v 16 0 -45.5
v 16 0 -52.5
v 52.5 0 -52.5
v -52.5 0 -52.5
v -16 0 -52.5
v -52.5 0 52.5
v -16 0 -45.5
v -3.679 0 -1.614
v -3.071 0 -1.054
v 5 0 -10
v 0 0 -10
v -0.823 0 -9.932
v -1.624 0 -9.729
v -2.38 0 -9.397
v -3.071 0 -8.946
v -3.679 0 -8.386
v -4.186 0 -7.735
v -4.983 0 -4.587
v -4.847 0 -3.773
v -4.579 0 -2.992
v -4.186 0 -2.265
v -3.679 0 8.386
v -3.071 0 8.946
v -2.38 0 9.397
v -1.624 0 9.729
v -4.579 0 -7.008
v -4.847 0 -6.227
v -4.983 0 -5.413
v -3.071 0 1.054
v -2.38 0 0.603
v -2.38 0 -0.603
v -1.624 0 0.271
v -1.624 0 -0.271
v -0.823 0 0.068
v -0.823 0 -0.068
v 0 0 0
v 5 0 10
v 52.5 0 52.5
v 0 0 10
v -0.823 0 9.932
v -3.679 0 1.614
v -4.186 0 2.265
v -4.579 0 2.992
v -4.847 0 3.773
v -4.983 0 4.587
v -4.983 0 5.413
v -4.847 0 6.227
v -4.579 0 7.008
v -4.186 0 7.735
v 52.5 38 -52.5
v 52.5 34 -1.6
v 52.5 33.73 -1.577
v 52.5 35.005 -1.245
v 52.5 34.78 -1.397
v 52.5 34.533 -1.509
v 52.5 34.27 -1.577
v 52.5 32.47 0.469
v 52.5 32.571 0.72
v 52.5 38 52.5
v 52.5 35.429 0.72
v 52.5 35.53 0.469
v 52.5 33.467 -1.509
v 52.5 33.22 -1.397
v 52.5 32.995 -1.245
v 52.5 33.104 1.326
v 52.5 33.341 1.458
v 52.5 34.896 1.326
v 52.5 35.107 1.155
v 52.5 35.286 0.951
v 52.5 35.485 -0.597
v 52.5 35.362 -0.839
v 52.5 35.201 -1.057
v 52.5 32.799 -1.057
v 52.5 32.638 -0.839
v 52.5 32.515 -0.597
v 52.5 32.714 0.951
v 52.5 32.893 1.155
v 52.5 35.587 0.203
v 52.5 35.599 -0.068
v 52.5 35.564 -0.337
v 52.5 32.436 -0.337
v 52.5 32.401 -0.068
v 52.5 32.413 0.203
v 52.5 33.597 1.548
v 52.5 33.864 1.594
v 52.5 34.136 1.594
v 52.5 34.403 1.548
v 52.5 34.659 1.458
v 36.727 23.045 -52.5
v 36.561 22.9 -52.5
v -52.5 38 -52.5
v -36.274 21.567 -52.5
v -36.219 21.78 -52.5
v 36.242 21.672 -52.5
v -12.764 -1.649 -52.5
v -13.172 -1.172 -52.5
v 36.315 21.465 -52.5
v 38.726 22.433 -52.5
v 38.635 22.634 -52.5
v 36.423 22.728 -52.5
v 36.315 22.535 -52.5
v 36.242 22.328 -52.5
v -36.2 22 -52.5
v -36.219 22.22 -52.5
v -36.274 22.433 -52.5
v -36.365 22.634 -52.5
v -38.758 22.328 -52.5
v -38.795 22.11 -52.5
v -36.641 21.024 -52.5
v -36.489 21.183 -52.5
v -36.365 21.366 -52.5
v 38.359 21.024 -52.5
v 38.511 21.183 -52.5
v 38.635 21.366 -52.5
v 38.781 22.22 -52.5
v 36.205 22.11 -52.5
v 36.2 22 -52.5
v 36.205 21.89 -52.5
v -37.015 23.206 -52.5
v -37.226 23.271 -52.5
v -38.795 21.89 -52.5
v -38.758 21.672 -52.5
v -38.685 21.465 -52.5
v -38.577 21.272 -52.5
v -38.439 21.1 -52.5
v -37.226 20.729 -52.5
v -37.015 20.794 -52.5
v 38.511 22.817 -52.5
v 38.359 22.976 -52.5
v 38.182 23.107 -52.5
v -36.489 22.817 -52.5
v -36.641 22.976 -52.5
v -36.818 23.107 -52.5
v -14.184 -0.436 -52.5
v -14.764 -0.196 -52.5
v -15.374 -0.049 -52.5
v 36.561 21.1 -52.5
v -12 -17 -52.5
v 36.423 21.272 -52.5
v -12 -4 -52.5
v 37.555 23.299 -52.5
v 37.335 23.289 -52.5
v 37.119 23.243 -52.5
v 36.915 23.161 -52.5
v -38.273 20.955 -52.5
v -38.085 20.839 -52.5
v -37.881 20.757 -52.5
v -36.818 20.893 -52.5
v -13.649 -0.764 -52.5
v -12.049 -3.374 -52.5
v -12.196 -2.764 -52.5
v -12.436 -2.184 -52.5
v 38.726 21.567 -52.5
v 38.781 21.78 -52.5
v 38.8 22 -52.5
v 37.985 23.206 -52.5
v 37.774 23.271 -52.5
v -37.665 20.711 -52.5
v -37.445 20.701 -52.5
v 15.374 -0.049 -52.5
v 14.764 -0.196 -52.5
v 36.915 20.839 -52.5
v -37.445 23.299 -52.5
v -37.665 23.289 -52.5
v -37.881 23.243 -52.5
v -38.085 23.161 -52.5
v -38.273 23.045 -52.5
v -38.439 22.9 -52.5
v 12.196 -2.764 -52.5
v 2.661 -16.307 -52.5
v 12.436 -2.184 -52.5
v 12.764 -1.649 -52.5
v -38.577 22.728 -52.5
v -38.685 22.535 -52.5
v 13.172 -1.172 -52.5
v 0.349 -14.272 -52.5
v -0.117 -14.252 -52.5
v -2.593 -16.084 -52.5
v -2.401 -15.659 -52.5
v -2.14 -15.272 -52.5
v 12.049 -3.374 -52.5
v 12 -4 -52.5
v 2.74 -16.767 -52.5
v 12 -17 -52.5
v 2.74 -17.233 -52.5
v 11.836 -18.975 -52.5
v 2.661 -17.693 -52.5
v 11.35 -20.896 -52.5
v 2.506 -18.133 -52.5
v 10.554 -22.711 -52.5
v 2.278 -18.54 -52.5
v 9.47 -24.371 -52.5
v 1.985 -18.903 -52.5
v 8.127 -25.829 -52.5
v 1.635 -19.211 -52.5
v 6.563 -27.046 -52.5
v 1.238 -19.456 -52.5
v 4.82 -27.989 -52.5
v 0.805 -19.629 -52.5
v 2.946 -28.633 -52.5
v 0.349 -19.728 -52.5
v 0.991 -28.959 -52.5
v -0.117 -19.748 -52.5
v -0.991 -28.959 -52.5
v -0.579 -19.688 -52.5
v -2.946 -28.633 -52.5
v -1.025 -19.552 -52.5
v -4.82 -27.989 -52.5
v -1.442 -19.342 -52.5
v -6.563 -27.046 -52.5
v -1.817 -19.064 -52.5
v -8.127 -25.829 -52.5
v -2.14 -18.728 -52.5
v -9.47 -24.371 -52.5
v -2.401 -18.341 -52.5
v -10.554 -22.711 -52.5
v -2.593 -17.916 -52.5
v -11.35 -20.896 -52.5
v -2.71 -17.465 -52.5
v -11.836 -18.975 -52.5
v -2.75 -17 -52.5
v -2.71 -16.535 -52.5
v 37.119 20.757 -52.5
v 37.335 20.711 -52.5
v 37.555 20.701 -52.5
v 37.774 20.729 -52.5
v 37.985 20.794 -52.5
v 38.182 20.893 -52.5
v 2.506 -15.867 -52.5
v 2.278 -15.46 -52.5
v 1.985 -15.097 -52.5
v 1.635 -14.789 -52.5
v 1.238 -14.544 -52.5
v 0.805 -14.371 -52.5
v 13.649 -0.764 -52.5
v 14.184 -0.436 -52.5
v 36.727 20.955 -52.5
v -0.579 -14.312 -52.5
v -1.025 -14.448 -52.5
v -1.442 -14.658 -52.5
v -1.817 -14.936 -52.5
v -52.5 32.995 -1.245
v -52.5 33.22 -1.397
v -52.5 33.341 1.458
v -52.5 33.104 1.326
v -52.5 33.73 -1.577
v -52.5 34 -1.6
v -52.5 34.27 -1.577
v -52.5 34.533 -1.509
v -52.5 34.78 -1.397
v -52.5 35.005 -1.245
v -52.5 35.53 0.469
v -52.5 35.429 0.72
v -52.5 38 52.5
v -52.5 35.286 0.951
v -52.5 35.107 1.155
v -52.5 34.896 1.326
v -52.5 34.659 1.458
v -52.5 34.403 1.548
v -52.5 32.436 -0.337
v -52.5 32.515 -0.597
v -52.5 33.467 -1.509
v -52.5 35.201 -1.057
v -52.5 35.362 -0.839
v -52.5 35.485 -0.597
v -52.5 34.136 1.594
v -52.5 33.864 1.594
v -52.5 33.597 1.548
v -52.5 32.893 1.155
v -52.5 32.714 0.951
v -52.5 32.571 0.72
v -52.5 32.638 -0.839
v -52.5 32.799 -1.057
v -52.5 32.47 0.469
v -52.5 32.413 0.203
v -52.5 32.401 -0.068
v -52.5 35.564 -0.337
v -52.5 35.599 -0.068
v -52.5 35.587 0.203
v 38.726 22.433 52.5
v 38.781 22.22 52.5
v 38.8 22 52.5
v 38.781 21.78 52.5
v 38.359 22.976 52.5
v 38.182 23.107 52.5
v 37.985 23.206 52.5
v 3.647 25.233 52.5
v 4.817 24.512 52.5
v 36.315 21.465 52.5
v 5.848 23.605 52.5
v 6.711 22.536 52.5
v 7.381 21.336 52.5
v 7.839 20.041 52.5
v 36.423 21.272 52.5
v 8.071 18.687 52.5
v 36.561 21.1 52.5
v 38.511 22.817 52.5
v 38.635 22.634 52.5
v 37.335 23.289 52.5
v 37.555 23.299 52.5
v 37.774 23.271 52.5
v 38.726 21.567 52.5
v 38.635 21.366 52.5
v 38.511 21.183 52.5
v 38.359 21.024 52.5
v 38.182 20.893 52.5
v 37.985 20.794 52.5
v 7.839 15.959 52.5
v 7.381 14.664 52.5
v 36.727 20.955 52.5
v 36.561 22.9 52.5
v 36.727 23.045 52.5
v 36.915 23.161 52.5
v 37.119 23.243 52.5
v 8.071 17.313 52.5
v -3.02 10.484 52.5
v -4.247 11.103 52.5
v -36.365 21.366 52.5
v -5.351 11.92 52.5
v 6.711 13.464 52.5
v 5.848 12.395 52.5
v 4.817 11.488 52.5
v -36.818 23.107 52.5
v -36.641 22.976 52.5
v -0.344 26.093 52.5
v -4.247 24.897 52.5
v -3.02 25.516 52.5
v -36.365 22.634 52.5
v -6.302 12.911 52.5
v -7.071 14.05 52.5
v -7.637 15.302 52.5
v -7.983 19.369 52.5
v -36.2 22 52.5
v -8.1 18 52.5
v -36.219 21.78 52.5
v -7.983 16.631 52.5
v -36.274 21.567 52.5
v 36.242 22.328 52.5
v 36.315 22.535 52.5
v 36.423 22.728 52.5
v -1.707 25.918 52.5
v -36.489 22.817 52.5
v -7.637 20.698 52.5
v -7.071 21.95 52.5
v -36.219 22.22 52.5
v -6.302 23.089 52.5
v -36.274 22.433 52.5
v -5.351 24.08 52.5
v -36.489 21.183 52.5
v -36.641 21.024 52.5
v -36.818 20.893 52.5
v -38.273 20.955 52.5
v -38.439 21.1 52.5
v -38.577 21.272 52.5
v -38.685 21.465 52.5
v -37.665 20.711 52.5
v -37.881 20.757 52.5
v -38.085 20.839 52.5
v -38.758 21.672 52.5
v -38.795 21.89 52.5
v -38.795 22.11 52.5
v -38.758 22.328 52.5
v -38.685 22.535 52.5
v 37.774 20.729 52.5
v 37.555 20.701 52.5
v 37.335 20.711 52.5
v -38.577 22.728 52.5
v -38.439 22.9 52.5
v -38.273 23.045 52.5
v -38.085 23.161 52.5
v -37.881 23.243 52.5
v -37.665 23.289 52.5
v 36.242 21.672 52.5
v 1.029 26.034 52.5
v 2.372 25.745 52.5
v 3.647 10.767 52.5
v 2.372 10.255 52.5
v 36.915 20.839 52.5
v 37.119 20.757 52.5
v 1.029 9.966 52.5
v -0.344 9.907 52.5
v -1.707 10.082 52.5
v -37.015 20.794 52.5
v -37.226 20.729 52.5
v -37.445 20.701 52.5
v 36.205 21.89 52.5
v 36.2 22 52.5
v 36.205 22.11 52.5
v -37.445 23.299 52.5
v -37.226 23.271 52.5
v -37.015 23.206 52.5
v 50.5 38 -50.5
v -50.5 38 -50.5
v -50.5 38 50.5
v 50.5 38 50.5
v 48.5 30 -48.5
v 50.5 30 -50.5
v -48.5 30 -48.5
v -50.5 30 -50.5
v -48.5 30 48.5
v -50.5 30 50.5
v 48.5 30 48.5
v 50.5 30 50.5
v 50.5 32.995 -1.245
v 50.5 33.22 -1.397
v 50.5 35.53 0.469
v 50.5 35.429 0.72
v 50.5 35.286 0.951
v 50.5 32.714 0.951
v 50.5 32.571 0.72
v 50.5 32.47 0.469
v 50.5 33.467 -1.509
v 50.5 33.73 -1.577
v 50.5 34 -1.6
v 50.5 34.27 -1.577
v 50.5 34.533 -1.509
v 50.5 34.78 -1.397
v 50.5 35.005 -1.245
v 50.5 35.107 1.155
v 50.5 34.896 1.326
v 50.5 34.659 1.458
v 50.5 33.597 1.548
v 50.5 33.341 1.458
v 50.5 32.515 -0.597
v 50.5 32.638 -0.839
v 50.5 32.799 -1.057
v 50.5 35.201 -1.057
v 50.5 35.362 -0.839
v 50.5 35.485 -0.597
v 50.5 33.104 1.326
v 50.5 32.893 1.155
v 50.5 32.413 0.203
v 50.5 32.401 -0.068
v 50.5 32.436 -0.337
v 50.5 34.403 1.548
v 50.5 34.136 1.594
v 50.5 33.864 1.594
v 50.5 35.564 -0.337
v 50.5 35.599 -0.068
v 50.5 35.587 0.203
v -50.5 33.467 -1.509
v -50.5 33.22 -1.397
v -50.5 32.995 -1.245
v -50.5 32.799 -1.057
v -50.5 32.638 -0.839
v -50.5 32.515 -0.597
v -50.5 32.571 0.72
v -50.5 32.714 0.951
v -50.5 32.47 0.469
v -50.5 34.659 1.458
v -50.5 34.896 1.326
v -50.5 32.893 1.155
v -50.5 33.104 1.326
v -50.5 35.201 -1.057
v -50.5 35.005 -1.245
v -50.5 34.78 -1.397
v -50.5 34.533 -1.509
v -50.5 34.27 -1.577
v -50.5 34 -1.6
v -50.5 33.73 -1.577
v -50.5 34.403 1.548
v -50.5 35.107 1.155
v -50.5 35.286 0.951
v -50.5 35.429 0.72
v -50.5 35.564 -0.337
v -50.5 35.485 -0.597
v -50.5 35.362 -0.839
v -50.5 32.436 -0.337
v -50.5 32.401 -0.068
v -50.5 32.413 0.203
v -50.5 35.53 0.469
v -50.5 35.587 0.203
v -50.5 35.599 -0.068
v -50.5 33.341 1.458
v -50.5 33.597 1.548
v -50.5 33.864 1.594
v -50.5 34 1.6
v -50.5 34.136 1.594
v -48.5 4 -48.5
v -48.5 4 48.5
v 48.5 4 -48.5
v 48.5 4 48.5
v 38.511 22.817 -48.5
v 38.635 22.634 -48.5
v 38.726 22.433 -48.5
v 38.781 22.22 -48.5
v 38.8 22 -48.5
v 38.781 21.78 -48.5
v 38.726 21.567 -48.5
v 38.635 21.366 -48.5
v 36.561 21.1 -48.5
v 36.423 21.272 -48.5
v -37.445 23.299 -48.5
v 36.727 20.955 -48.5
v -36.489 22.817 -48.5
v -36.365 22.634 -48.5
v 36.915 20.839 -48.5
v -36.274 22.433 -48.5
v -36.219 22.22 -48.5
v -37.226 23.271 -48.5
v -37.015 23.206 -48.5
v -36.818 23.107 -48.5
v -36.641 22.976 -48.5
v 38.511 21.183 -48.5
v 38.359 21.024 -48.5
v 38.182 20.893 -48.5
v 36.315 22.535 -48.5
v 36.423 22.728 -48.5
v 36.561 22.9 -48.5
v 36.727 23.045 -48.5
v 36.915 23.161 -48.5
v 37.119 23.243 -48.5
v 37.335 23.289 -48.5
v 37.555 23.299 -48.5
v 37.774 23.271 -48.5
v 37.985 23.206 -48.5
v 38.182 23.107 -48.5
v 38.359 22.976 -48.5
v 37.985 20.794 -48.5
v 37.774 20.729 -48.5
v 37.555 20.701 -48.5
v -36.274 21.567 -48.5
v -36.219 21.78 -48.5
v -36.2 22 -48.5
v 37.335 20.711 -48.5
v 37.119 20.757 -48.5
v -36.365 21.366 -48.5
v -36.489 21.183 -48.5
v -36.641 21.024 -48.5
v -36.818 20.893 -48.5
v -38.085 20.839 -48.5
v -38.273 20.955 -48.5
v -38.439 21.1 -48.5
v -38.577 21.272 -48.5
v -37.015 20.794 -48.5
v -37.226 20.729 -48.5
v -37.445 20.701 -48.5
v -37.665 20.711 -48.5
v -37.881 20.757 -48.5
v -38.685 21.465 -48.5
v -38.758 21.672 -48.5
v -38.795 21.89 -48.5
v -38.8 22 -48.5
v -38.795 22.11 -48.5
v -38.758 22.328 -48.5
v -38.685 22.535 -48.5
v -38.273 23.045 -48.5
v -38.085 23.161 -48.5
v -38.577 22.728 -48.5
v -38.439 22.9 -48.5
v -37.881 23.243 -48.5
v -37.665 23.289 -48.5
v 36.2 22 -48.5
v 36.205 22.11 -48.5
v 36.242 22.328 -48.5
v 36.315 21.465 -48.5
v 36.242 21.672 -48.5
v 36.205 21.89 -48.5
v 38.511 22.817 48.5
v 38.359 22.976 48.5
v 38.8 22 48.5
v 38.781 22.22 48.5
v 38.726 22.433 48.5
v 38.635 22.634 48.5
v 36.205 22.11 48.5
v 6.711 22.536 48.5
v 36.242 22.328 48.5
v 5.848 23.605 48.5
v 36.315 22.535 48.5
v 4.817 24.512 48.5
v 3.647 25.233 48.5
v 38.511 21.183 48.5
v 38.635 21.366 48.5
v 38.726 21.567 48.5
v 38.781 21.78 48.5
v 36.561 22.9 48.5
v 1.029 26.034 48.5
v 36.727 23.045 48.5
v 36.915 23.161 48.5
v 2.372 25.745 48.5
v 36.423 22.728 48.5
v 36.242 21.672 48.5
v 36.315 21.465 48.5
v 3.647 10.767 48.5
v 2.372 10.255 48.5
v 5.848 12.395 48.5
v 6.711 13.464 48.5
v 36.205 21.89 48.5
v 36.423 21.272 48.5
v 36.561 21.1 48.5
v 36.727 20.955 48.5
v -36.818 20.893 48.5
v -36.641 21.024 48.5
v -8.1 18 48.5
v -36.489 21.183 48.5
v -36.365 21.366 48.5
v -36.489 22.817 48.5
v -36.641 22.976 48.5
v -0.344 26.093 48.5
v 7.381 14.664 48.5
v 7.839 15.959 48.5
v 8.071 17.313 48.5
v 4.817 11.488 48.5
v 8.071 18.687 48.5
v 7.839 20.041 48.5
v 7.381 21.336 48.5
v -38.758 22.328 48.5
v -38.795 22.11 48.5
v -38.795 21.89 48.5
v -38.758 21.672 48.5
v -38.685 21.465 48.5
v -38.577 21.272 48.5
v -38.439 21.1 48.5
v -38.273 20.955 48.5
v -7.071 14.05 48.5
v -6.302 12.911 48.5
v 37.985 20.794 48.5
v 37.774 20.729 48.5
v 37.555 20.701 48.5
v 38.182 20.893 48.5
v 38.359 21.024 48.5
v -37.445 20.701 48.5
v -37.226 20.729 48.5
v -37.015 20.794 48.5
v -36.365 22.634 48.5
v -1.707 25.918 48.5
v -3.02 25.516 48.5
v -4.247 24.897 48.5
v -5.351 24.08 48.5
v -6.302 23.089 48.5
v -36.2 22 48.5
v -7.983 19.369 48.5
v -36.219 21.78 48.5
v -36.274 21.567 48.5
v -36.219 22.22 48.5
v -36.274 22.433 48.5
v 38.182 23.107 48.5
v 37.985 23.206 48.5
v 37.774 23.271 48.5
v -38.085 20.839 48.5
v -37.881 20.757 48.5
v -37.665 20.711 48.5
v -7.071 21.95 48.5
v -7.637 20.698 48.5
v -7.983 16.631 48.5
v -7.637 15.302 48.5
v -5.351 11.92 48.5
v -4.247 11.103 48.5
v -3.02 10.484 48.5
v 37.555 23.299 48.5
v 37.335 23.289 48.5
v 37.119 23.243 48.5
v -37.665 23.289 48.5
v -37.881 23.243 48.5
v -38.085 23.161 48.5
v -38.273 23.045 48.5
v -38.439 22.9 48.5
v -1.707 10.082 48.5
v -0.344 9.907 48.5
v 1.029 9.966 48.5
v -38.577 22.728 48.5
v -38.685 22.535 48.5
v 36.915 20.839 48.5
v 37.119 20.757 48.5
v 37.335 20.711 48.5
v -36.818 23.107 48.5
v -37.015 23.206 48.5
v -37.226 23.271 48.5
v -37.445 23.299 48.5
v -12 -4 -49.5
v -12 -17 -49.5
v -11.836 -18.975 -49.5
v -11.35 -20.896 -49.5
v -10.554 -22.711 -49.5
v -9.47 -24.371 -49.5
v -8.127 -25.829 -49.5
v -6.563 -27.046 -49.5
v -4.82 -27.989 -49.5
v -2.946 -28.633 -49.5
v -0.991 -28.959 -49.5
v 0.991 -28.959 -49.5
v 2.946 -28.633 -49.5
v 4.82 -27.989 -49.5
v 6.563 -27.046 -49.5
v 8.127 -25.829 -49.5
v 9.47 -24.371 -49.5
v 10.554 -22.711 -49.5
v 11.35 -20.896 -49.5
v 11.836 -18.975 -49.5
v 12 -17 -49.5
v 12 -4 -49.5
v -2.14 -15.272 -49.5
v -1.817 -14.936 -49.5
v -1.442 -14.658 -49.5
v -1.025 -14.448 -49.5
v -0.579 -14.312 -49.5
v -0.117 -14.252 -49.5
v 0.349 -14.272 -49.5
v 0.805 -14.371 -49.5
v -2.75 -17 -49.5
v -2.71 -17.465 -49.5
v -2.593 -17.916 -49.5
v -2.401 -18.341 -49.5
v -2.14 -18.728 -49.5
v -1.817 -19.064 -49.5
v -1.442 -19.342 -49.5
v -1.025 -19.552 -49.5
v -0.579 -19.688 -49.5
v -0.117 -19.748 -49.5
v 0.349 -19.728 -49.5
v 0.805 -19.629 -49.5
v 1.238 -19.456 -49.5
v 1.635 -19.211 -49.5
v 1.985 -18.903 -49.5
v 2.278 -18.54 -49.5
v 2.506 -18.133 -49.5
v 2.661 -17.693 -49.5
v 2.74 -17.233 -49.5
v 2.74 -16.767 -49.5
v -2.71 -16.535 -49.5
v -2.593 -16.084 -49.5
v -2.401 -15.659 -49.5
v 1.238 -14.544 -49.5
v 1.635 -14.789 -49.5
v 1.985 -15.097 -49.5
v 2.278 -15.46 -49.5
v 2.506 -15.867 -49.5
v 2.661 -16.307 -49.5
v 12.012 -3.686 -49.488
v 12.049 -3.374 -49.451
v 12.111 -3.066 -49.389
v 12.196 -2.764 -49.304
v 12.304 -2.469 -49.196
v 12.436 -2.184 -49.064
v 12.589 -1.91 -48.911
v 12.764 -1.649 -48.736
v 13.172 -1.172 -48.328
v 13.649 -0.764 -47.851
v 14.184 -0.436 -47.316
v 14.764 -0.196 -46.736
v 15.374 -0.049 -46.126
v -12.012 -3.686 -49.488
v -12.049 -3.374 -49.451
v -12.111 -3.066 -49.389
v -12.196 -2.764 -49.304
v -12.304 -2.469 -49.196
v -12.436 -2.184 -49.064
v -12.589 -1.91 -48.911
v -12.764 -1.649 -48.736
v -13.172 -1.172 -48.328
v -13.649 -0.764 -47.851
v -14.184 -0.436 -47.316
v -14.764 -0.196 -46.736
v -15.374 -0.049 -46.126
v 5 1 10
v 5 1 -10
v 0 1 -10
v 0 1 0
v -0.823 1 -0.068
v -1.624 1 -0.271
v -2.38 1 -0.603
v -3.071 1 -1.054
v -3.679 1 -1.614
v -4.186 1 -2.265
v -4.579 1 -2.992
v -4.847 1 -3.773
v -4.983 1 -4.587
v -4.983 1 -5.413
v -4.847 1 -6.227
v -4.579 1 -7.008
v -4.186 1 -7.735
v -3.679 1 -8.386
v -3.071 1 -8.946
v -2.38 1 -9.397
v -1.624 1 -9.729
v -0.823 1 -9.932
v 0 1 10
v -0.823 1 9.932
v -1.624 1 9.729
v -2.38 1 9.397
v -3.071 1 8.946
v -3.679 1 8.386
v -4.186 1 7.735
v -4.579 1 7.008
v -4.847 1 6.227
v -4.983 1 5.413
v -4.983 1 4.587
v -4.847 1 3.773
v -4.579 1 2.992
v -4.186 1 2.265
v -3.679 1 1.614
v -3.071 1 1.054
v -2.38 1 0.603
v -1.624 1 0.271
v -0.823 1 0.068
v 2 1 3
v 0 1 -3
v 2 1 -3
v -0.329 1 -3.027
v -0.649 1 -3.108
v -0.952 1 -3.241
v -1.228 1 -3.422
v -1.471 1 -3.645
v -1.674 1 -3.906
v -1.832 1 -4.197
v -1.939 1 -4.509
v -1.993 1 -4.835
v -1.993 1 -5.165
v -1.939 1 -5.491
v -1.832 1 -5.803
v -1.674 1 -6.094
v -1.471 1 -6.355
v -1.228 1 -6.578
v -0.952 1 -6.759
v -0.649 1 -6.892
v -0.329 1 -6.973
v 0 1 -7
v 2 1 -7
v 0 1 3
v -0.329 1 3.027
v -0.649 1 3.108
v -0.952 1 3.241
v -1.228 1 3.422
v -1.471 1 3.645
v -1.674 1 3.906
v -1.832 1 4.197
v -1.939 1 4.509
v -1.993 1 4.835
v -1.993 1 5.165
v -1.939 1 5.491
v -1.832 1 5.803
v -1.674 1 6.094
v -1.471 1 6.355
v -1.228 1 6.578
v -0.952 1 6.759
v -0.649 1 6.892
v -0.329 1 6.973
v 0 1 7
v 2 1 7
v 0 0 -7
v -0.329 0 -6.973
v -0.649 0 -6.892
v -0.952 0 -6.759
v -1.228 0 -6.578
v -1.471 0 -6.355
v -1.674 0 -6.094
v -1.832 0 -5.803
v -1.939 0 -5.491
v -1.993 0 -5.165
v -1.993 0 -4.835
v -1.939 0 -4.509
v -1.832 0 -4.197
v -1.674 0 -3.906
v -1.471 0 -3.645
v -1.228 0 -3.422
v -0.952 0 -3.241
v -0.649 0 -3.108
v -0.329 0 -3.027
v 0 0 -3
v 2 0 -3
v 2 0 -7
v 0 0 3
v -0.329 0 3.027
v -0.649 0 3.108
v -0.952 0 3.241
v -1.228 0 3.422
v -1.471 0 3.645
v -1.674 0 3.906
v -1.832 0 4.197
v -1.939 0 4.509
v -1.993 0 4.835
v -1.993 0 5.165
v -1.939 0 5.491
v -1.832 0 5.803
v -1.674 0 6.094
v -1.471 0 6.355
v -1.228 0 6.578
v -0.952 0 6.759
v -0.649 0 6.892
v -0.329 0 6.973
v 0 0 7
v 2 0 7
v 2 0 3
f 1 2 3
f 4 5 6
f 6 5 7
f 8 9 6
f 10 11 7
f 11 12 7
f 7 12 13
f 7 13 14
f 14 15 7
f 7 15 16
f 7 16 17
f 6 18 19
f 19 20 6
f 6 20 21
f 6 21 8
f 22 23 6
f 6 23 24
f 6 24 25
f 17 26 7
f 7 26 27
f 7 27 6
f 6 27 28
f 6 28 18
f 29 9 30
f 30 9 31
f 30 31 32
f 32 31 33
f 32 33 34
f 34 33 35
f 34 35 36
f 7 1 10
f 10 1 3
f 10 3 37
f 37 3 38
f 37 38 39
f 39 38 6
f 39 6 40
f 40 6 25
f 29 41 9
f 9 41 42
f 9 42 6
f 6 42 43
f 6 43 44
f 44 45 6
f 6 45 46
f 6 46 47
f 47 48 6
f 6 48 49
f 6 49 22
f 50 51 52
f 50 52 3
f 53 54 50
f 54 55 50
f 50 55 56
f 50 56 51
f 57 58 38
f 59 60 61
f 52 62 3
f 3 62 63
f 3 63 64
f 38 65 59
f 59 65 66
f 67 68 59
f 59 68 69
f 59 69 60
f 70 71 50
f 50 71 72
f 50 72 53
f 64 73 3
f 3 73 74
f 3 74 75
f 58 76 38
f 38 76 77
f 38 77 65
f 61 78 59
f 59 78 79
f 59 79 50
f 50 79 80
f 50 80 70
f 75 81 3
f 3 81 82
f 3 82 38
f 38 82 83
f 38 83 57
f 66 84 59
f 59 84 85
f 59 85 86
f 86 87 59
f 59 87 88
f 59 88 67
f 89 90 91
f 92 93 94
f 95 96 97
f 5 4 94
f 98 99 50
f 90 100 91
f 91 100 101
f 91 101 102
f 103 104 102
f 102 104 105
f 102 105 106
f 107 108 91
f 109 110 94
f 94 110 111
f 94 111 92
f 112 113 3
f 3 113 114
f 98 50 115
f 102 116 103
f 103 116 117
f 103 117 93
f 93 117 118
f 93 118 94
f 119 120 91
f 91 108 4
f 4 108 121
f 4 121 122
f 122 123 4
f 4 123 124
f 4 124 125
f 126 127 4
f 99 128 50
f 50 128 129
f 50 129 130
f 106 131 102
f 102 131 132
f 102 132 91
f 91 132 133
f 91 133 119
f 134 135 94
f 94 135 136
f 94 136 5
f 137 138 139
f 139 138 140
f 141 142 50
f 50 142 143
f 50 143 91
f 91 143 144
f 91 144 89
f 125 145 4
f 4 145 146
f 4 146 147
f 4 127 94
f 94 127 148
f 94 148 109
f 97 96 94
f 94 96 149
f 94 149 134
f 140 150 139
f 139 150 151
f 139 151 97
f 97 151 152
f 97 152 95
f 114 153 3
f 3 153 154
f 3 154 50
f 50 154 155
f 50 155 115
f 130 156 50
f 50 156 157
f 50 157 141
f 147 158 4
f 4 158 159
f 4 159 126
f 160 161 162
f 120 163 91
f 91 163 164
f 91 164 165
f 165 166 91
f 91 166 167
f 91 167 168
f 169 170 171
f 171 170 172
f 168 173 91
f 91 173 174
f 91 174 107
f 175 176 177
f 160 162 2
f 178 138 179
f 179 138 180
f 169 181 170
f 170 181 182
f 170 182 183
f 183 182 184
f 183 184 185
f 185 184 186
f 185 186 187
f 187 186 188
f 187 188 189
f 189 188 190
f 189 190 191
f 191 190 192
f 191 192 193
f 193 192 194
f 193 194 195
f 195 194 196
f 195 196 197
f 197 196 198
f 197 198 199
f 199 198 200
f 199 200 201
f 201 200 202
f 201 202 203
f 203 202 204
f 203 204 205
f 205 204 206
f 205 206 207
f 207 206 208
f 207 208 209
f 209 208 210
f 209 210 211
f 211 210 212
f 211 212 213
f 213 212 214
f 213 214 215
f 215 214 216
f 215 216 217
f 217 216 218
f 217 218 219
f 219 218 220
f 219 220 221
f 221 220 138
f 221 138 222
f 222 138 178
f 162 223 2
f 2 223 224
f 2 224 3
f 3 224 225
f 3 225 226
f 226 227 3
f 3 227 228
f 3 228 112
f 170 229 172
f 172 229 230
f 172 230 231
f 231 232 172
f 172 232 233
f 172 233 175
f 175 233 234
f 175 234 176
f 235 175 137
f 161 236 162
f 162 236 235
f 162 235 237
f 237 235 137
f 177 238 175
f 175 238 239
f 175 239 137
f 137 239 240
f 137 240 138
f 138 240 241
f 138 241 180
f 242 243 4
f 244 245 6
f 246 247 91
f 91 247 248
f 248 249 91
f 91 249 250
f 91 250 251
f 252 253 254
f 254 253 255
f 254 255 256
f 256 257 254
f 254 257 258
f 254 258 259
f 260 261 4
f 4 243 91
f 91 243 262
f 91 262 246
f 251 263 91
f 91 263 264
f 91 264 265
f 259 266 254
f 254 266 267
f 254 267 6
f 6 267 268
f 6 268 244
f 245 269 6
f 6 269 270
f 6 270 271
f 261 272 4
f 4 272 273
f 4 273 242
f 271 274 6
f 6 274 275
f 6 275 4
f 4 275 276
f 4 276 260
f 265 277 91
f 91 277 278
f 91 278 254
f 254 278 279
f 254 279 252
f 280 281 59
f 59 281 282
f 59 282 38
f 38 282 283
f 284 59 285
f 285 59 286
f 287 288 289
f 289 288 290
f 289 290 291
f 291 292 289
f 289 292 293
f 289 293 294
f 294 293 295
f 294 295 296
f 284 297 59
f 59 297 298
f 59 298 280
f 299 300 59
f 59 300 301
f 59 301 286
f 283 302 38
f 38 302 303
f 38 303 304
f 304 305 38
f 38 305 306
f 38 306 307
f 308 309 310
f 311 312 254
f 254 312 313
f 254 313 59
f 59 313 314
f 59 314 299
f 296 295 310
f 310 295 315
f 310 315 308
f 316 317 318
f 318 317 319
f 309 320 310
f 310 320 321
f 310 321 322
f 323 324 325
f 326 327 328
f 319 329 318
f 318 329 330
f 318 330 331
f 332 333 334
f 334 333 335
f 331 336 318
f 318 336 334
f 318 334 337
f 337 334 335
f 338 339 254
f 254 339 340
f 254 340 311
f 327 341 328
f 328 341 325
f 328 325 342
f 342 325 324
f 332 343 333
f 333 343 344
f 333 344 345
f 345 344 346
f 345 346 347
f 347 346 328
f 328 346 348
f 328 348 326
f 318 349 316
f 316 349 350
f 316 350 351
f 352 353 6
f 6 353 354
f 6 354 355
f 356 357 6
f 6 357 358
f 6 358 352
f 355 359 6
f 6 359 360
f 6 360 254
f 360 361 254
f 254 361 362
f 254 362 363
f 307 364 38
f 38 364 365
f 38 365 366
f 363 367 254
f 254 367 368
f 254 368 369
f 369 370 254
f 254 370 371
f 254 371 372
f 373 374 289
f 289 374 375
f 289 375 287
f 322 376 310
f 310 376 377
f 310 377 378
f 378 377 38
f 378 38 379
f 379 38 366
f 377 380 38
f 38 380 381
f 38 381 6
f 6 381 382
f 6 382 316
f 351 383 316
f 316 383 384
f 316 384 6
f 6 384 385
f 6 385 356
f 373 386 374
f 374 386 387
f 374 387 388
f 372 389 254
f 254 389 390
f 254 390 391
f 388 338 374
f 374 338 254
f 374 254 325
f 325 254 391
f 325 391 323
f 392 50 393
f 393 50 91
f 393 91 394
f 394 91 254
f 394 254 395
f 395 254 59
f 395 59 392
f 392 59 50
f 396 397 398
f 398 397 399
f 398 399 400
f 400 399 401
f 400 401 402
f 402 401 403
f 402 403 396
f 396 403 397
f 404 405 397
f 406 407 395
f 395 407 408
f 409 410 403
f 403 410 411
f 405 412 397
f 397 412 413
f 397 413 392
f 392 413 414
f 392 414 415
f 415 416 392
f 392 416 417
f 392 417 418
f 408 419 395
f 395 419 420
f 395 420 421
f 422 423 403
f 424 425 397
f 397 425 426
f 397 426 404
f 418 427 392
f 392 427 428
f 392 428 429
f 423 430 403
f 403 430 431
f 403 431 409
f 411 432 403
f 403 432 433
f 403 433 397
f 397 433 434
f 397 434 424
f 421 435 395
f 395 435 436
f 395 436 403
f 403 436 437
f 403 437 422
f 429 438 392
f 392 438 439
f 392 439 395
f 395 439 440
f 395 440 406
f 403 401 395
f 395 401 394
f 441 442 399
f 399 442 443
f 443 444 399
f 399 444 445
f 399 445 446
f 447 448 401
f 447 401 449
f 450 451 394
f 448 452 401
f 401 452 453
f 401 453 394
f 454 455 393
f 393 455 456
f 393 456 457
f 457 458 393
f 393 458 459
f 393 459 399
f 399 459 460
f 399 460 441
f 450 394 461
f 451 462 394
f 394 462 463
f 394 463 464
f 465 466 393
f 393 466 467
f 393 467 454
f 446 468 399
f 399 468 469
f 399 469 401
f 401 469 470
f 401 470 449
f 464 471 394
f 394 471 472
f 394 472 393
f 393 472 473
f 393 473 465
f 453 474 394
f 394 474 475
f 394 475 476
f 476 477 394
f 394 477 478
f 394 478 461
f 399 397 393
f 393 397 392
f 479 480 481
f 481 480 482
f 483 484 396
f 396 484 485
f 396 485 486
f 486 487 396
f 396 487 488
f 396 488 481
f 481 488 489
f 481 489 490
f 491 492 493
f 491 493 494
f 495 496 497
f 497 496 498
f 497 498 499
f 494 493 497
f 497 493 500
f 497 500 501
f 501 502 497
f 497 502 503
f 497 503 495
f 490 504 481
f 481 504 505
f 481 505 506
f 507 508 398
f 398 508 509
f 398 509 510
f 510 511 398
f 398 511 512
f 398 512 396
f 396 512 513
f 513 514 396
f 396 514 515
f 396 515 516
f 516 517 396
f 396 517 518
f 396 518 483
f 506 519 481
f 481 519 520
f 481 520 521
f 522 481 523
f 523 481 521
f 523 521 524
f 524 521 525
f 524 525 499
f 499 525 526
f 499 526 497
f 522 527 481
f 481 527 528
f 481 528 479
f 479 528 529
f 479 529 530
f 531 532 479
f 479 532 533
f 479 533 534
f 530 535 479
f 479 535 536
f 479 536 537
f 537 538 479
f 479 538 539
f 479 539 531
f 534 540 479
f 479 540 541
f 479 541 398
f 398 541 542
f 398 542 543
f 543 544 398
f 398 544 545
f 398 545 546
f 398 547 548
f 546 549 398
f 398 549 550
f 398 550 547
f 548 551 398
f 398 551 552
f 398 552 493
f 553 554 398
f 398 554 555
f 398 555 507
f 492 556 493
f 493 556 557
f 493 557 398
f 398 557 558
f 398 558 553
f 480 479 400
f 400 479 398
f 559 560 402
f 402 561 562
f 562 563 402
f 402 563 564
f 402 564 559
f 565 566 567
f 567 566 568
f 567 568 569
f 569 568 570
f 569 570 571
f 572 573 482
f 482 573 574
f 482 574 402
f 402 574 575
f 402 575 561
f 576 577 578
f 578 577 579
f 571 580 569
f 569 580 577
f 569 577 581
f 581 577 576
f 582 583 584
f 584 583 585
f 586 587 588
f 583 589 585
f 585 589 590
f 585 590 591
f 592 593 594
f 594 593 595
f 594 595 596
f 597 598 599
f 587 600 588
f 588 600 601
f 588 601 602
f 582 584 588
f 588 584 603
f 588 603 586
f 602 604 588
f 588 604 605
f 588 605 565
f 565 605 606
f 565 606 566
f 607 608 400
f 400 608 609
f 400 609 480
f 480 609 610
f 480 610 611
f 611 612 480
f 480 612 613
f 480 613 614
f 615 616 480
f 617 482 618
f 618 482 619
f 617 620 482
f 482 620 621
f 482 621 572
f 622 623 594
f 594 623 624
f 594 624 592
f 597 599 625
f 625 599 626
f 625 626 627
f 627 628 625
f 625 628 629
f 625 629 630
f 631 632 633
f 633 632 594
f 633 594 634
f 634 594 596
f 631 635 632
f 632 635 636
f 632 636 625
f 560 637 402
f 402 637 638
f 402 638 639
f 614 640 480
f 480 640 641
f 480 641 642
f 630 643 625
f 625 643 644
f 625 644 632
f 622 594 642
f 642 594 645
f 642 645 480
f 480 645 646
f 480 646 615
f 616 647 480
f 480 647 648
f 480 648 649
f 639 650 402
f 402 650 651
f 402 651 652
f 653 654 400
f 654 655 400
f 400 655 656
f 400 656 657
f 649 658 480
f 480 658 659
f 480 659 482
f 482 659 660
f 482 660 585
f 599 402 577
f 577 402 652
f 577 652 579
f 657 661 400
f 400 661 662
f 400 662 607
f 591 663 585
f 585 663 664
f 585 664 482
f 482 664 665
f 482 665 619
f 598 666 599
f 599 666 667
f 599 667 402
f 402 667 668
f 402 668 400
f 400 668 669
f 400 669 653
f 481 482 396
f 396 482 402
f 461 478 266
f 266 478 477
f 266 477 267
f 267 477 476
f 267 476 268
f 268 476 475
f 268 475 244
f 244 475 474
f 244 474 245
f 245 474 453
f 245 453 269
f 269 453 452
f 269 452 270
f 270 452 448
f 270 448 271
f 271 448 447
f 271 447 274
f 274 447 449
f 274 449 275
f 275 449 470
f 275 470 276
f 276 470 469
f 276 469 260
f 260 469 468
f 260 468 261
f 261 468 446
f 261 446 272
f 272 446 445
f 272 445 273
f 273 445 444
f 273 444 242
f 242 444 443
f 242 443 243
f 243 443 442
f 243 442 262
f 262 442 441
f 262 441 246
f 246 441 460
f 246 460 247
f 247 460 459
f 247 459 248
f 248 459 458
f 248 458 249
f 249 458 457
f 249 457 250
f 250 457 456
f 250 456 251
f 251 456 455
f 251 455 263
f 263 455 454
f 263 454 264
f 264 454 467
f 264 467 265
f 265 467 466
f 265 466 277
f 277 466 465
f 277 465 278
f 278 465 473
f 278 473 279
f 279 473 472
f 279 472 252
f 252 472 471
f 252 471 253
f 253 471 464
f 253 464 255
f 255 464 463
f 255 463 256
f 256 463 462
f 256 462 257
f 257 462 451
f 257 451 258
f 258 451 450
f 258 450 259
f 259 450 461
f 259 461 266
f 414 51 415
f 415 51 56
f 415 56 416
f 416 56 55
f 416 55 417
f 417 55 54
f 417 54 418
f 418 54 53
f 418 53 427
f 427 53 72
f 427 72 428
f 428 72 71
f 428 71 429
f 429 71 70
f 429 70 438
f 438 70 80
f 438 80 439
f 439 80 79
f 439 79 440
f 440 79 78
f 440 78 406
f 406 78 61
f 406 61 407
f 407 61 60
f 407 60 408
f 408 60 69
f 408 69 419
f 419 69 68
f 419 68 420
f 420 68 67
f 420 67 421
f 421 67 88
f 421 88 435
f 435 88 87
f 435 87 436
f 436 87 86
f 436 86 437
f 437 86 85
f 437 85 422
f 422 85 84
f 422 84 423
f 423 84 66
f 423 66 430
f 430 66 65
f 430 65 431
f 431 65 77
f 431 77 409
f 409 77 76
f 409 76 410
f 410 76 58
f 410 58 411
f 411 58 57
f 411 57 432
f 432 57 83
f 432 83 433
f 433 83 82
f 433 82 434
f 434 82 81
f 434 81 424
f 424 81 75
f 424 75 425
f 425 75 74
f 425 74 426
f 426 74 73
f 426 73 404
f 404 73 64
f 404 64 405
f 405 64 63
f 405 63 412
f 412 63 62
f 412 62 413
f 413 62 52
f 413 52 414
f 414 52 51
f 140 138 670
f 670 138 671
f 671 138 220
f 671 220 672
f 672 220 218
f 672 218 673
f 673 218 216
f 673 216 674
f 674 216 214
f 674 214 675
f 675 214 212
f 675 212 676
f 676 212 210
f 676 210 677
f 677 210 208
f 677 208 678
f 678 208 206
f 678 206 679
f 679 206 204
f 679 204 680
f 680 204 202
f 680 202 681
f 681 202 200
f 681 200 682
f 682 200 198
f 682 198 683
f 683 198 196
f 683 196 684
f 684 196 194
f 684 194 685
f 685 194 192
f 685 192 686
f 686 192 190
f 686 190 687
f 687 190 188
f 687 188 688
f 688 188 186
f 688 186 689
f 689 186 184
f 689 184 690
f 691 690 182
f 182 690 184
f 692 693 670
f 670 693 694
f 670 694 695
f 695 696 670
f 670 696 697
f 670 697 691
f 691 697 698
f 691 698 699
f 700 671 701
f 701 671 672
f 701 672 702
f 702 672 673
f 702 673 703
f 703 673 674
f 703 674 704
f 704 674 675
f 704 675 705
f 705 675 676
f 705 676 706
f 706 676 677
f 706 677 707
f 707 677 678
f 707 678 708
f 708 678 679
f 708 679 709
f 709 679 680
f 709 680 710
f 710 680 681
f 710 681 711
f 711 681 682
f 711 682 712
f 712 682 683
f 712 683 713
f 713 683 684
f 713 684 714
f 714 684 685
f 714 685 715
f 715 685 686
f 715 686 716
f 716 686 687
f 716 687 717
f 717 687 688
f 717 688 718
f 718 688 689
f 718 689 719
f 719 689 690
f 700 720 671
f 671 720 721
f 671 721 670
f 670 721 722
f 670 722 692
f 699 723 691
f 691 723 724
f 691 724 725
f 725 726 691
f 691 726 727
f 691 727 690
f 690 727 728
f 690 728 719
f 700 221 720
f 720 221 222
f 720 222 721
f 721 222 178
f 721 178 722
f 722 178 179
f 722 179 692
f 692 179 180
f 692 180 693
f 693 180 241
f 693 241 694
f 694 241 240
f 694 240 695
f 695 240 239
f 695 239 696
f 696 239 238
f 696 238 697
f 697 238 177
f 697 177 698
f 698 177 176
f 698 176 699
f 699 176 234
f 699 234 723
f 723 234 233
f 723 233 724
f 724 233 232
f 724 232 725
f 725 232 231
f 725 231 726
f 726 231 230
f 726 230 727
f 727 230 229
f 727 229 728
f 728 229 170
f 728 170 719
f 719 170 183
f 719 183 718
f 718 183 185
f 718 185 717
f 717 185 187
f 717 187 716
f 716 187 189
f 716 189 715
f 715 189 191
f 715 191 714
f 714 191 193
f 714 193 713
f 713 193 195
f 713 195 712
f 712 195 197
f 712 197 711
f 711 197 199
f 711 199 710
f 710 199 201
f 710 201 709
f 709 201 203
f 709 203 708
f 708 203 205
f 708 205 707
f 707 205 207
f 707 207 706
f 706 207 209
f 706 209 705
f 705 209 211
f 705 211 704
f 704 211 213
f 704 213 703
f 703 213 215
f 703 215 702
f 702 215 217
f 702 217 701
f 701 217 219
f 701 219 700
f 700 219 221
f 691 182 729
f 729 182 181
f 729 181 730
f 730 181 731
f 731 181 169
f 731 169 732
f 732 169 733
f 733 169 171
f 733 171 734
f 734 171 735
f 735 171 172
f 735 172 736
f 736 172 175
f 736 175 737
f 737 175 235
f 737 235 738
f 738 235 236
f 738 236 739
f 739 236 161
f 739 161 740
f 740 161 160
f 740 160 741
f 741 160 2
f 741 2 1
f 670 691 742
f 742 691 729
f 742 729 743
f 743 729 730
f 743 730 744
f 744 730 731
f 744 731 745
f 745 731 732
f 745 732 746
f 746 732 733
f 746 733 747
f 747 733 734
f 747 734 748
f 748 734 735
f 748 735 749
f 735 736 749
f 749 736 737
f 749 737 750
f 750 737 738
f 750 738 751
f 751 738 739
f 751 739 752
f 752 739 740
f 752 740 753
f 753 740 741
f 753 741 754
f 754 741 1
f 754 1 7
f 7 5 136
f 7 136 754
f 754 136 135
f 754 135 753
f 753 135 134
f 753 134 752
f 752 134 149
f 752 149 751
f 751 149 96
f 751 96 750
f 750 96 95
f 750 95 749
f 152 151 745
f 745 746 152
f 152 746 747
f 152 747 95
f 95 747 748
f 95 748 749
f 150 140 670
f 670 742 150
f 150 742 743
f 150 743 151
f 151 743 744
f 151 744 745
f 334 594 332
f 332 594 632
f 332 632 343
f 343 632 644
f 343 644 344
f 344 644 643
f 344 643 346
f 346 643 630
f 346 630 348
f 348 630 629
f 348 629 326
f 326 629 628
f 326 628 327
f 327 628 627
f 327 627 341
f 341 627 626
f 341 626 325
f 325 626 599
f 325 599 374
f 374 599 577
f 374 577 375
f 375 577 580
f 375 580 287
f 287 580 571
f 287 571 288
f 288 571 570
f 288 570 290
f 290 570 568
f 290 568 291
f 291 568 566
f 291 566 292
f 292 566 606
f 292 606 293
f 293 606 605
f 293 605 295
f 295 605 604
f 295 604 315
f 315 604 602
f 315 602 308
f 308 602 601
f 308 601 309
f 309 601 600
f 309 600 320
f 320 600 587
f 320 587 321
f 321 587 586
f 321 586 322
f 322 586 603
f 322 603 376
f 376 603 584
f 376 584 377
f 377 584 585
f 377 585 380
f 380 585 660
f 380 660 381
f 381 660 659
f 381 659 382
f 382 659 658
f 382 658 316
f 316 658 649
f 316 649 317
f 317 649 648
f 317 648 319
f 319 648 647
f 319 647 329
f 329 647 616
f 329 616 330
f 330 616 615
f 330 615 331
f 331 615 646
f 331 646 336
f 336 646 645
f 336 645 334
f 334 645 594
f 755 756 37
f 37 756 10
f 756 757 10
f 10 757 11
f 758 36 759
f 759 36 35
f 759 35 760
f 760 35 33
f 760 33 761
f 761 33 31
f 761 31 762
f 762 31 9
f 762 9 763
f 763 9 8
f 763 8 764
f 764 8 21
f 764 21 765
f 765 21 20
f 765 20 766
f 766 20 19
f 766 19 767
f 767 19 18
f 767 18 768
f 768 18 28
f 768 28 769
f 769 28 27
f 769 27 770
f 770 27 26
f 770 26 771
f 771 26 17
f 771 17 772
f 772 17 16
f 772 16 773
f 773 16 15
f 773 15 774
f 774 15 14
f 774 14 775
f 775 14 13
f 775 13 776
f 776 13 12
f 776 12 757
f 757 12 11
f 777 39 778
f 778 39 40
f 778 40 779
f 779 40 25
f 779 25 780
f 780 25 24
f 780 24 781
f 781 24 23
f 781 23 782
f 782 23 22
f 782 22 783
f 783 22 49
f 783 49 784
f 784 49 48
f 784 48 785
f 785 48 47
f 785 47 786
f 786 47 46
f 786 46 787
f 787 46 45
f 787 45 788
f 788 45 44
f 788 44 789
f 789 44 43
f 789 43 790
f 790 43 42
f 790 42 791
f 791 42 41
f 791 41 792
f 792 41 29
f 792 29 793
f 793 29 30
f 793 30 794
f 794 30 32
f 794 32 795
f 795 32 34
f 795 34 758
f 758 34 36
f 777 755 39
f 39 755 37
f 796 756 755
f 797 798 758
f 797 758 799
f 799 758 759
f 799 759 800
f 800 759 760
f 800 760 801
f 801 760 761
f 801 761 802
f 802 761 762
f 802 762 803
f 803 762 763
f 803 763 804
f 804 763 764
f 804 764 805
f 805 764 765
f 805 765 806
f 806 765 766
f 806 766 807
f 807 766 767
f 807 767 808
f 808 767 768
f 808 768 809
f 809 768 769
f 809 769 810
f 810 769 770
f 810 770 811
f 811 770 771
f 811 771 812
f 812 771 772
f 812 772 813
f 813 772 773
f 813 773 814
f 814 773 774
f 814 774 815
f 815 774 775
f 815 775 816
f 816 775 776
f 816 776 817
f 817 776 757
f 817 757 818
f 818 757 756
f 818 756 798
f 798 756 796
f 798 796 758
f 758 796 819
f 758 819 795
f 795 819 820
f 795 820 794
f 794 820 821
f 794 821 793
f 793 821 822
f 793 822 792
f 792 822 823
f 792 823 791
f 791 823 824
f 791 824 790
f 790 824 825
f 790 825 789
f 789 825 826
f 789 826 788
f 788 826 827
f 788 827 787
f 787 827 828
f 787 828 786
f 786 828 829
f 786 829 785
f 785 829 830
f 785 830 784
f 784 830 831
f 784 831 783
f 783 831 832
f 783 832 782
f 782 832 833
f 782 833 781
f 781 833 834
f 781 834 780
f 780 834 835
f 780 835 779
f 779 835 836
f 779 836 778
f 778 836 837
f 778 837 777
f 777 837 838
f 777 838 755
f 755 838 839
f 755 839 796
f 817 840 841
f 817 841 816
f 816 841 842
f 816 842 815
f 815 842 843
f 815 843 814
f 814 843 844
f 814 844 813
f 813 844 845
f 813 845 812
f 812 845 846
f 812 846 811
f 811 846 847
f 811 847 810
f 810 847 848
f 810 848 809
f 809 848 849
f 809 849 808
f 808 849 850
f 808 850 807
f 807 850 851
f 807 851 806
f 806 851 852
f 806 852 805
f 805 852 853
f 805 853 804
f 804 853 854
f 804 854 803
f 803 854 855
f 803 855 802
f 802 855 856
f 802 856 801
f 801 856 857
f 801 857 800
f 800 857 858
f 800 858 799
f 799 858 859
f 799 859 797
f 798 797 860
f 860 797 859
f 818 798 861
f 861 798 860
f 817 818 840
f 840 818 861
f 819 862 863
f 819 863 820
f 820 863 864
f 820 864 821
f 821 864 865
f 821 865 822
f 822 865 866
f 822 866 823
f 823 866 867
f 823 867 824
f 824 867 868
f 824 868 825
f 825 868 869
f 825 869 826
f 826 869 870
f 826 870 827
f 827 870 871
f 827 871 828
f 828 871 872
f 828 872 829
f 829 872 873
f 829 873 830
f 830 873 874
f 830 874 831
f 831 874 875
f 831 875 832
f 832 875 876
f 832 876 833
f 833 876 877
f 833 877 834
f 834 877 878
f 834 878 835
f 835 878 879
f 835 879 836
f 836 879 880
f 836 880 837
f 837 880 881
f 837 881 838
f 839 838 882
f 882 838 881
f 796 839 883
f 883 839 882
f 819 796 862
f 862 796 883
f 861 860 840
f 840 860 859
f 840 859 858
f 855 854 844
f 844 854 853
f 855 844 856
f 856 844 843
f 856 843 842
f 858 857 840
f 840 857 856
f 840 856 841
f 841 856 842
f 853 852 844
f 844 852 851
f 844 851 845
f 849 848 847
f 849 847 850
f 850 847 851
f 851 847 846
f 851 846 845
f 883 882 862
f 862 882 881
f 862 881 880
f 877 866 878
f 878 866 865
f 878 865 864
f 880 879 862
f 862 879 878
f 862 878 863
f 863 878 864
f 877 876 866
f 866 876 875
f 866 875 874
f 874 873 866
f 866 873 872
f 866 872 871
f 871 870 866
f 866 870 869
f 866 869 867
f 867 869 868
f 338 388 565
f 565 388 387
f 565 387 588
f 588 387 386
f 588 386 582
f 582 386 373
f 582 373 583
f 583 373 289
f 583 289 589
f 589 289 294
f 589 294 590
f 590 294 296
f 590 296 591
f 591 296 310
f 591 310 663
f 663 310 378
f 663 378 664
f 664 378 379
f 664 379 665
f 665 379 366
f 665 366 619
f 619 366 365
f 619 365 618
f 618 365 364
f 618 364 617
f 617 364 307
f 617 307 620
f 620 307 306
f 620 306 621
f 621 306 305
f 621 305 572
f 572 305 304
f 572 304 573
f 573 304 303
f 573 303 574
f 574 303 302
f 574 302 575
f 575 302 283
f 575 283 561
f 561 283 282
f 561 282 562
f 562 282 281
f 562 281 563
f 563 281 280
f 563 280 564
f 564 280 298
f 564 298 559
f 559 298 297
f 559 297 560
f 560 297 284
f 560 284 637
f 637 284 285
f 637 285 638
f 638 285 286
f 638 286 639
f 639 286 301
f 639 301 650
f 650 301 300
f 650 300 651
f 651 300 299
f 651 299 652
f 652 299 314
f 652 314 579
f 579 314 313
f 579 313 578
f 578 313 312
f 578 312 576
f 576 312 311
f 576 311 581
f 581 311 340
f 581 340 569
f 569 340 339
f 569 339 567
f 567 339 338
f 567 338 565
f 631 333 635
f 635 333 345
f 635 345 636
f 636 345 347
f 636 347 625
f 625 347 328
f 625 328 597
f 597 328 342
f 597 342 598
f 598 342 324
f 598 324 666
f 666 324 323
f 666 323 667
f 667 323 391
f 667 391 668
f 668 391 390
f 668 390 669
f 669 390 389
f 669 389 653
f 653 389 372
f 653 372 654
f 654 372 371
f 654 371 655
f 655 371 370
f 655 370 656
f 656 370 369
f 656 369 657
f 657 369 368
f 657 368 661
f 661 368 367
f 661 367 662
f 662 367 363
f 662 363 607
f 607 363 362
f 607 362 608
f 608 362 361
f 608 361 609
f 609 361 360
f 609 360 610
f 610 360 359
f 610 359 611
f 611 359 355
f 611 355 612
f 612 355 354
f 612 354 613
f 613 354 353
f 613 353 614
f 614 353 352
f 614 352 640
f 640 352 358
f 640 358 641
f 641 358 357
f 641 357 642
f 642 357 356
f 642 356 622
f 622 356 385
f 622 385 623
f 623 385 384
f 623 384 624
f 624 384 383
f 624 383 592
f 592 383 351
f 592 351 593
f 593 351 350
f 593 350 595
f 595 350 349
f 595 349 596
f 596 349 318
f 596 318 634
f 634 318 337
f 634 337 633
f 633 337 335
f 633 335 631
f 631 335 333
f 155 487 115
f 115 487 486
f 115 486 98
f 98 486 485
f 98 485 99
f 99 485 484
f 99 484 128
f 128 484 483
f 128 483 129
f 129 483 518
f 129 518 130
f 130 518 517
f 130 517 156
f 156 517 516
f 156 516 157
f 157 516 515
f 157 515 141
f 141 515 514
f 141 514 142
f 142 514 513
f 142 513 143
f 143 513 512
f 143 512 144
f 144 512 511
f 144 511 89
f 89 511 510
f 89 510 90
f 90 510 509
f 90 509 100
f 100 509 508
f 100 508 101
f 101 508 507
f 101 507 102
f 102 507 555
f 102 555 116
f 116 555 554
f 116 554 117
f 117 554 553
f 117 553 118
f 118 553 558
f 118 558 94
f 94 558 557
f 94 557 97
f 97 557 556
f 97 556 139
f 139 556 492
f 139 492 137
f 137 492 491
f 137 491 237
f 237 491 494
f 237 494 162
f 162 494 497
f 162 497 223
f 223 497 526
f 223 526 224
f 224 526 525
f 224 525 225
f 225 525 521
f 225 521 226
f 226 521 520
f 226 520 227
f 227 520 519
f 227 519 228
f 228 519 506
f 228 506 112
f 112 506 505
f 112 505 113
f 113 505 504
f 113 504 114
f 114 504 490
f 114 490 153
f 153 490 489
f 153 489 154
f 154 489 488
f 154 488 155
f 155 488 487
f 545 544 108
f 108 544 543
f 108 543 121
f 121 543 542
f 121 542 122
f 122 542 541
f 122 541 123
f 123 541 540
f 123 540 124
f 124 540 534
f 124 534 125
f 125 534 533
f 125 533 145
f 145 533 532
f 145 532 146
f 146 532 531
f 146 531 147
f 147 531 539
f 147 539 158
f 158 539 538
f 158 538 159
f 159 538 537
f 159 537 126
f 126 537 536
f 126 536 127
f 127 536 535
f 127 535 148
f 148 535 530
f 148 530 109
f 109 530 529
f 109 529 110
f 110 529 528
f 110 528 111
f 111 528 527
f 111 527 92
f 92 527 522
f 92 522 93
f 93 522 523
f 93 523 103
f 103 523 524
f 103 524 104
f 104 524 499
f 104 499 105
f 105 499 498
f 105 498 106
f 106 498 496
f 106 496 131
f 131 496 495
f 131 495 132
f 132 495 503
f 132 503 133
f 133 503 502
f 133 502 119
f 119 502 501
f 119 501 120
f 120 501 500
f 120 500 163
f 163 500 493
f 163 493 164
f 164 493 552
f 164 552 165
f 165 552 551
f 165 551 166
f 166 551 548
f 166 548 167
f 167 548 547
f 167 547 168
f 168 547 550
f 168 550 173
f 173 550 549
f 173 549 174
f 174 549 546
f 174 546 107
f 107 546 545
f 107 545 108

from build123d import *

# Parameters (mm, degrees)
SKETCH1_W           = 105
SKETCH1_H           = 105
BOSS_EXTRUDE1_DEPTH = 38
SKETCH2_W           = 97
SKETCH2_H           = 97
CUT_EXTRUDE1_DEPTH  = 34
SKETCH3_W           = 101
SKETCH3_H           = 101
CUT_EXTRUDE2_DEPTH  = 8
SKETCH5_R           = 1.6
CUT_EXTRUDE3_DEPTH  = 106
SKETCH6_R           = 2.75
BOSS_EXTRUDE2_DEPTH = 3
FILLET1_R           = 4
CUT_EXTRUDE4_REACH  = 6
SKETCH7_R           = 8.1
CUT_EXTRUDE5_DEPTH  = 1
SKETCH11_R          = 1.3
CUT_EXTRUDE6_DEPTH  = 106


with BuildPart() as part:
    # Sketch1 → Boss-Extrude1 (new body)
    with BuildSketch(Plane(origin=(0, 0, 0), x_dir=(1, 0, 0), z_dir=(0, 1, 0))):
        Rectangle(SKETCH1_W, SKETCH1_H)
    extrude(amount=BOSS_EXTRUDE1_DEPTH)

    # Sketch2 → Cut-Extrude1 (cut)
    with BuildSketch(Plane(origin=(0, 38, 0), x_dir=(1, 0, 0), z_dir=(0, 1, 0))):
        Rectangle(SKETCH2_W, SKETCH2_H)
    extrude(amount=-CUT_EXTRUDE1_DEPTH, mode=Mode.SUBTRACT)

    # Sketch3 → Cut-Extrude2 (cut)
    with BuildSketch(Plane(origin=(0, 38, 0), x_dir=(1, 0, 0), z_dir=(0, 1, 0))):
        Rectangle(SKETCH3_W, SKETCH3_H)
    extrude(amount=-CUT_EXTRUDE2_DEPTH, mode=Mode.SUBTRACT)

    # Sketch5 → Cut-Extrude3 (cut, through all)
    with BuildSketch(Plane(origin=(52.5, 0, 0), x_dir=(0, 0, -1), z_dir=(1, 0, 0))):
        with Locations((0, 34)):
            Circle(SKETCH5_R)
    extrude(amount=-CUT_EXTRUDE3_DEPTH, mode=Mode.SUBTRACT)

    # Sketch6 → Boss-Extrude2 (add)
    with BuildSketch(Plane(origin=(0, 0, -52.5), x_dir=(-1, 0, 0), z_dir=(0, 0, -1))):
        with BuildLine():
            Line((-12, 0), (12, 0))
            Line((12, 0), (12, -5))
            Line((12, -5), (12, -17))
            ThreePointArc((12, -17), (0, -29), (-12, -17))
            Line((-12, -17), (-12, -5))
            Line((-12, -5), (-12, 0))
        make_face()
        with Locations((0, -17)):
            Circle(SKETCH6_R, mode=Mode.SUBTRACT)
    extrude(amount=-BOSS_EXTRUDE2_DEPTH)

    # Fillet1
    fillet1_edges = [part.edges().sort_by_distance(p)[0] for p in [
        (0, 0, -49.5),
        (12, 0, -51),
        (-12, 0, -51),
    ]]
    fillet(fillet1_edges, radius=FILLET1_R)

    # Sketch7 → Cut-Extrude4 (cut, up to next)
    with BuildSketch(Plane(origin=(0, 0, 48.5), x_dir=(-1, 0, 0), z_dir=(0, 0, -1)), mode=Mode.PRIVATE) as cut_extrude4_sk1:
        with Locations((0, 18)):
            Circle(SKETCH7_R)
    cut_extrude4_tool1 = extrude(cut_extrude4_sk1.sketch, amount=-CUT_EXTRUDE4_REACH, mode=Mode.PRIVATE) & part.part
    add(cut_extrude4_tool1.solids().sort_by_distance((0, 18, 48.5))[0], mode=Mode.SUBTRACT)

    # Sketch10 → Cut-Extrude5 (cut)
    with BuildSketch(Plane.XZ):
        with BuildLine():
            Line((5, -10), (0, -10))
            ThreePointArc((0, -10), (-5, -5), (0, 0))
            ThreePointArc((0, 0), (-5, 5), (0, 10))
            Line((0, 10), (5, 10))
            Line((5, 10), (5, -10))
        make_face()
        with BuildLine():
            Line((0, -7), (2, -7))
            Line((2, -7), (2, -3))
            Line((2, -3), (0, -3))
            ThreePointArc((0, -3), (-2, -5), (0, -7))
        make_face(mode=Mode.SUBTRACT)
        with BuildLine():
            Line((0, 3), (2, 3))
            Line((2, 3), (2, 7))
            Line((2, 7), (0, 7))
            ThreePointArc((0, 7), (-2, 5), (0, 3))
        make_face(mode=Mode.SUBTRACT)
    extrude(amount=-CUT_EXTRUDE5_DEPTH, mode=Mode.SUBTRACT)

    # Sketch11 → Cut-Extrude6 (cut, through all)
    with BuildSketch(Plane.XY.offset(52.5)):
        with Locations((-37.5, 22)):
            Circle(SKETCH11_R)
        with Locations((37.5, 22)):
            Circle(SKETCH11_R)
    extrude(amount=-CUT_EXTRUDE6_DEPTH, mode=Mode.SUBTRACT)


solid = part.part
